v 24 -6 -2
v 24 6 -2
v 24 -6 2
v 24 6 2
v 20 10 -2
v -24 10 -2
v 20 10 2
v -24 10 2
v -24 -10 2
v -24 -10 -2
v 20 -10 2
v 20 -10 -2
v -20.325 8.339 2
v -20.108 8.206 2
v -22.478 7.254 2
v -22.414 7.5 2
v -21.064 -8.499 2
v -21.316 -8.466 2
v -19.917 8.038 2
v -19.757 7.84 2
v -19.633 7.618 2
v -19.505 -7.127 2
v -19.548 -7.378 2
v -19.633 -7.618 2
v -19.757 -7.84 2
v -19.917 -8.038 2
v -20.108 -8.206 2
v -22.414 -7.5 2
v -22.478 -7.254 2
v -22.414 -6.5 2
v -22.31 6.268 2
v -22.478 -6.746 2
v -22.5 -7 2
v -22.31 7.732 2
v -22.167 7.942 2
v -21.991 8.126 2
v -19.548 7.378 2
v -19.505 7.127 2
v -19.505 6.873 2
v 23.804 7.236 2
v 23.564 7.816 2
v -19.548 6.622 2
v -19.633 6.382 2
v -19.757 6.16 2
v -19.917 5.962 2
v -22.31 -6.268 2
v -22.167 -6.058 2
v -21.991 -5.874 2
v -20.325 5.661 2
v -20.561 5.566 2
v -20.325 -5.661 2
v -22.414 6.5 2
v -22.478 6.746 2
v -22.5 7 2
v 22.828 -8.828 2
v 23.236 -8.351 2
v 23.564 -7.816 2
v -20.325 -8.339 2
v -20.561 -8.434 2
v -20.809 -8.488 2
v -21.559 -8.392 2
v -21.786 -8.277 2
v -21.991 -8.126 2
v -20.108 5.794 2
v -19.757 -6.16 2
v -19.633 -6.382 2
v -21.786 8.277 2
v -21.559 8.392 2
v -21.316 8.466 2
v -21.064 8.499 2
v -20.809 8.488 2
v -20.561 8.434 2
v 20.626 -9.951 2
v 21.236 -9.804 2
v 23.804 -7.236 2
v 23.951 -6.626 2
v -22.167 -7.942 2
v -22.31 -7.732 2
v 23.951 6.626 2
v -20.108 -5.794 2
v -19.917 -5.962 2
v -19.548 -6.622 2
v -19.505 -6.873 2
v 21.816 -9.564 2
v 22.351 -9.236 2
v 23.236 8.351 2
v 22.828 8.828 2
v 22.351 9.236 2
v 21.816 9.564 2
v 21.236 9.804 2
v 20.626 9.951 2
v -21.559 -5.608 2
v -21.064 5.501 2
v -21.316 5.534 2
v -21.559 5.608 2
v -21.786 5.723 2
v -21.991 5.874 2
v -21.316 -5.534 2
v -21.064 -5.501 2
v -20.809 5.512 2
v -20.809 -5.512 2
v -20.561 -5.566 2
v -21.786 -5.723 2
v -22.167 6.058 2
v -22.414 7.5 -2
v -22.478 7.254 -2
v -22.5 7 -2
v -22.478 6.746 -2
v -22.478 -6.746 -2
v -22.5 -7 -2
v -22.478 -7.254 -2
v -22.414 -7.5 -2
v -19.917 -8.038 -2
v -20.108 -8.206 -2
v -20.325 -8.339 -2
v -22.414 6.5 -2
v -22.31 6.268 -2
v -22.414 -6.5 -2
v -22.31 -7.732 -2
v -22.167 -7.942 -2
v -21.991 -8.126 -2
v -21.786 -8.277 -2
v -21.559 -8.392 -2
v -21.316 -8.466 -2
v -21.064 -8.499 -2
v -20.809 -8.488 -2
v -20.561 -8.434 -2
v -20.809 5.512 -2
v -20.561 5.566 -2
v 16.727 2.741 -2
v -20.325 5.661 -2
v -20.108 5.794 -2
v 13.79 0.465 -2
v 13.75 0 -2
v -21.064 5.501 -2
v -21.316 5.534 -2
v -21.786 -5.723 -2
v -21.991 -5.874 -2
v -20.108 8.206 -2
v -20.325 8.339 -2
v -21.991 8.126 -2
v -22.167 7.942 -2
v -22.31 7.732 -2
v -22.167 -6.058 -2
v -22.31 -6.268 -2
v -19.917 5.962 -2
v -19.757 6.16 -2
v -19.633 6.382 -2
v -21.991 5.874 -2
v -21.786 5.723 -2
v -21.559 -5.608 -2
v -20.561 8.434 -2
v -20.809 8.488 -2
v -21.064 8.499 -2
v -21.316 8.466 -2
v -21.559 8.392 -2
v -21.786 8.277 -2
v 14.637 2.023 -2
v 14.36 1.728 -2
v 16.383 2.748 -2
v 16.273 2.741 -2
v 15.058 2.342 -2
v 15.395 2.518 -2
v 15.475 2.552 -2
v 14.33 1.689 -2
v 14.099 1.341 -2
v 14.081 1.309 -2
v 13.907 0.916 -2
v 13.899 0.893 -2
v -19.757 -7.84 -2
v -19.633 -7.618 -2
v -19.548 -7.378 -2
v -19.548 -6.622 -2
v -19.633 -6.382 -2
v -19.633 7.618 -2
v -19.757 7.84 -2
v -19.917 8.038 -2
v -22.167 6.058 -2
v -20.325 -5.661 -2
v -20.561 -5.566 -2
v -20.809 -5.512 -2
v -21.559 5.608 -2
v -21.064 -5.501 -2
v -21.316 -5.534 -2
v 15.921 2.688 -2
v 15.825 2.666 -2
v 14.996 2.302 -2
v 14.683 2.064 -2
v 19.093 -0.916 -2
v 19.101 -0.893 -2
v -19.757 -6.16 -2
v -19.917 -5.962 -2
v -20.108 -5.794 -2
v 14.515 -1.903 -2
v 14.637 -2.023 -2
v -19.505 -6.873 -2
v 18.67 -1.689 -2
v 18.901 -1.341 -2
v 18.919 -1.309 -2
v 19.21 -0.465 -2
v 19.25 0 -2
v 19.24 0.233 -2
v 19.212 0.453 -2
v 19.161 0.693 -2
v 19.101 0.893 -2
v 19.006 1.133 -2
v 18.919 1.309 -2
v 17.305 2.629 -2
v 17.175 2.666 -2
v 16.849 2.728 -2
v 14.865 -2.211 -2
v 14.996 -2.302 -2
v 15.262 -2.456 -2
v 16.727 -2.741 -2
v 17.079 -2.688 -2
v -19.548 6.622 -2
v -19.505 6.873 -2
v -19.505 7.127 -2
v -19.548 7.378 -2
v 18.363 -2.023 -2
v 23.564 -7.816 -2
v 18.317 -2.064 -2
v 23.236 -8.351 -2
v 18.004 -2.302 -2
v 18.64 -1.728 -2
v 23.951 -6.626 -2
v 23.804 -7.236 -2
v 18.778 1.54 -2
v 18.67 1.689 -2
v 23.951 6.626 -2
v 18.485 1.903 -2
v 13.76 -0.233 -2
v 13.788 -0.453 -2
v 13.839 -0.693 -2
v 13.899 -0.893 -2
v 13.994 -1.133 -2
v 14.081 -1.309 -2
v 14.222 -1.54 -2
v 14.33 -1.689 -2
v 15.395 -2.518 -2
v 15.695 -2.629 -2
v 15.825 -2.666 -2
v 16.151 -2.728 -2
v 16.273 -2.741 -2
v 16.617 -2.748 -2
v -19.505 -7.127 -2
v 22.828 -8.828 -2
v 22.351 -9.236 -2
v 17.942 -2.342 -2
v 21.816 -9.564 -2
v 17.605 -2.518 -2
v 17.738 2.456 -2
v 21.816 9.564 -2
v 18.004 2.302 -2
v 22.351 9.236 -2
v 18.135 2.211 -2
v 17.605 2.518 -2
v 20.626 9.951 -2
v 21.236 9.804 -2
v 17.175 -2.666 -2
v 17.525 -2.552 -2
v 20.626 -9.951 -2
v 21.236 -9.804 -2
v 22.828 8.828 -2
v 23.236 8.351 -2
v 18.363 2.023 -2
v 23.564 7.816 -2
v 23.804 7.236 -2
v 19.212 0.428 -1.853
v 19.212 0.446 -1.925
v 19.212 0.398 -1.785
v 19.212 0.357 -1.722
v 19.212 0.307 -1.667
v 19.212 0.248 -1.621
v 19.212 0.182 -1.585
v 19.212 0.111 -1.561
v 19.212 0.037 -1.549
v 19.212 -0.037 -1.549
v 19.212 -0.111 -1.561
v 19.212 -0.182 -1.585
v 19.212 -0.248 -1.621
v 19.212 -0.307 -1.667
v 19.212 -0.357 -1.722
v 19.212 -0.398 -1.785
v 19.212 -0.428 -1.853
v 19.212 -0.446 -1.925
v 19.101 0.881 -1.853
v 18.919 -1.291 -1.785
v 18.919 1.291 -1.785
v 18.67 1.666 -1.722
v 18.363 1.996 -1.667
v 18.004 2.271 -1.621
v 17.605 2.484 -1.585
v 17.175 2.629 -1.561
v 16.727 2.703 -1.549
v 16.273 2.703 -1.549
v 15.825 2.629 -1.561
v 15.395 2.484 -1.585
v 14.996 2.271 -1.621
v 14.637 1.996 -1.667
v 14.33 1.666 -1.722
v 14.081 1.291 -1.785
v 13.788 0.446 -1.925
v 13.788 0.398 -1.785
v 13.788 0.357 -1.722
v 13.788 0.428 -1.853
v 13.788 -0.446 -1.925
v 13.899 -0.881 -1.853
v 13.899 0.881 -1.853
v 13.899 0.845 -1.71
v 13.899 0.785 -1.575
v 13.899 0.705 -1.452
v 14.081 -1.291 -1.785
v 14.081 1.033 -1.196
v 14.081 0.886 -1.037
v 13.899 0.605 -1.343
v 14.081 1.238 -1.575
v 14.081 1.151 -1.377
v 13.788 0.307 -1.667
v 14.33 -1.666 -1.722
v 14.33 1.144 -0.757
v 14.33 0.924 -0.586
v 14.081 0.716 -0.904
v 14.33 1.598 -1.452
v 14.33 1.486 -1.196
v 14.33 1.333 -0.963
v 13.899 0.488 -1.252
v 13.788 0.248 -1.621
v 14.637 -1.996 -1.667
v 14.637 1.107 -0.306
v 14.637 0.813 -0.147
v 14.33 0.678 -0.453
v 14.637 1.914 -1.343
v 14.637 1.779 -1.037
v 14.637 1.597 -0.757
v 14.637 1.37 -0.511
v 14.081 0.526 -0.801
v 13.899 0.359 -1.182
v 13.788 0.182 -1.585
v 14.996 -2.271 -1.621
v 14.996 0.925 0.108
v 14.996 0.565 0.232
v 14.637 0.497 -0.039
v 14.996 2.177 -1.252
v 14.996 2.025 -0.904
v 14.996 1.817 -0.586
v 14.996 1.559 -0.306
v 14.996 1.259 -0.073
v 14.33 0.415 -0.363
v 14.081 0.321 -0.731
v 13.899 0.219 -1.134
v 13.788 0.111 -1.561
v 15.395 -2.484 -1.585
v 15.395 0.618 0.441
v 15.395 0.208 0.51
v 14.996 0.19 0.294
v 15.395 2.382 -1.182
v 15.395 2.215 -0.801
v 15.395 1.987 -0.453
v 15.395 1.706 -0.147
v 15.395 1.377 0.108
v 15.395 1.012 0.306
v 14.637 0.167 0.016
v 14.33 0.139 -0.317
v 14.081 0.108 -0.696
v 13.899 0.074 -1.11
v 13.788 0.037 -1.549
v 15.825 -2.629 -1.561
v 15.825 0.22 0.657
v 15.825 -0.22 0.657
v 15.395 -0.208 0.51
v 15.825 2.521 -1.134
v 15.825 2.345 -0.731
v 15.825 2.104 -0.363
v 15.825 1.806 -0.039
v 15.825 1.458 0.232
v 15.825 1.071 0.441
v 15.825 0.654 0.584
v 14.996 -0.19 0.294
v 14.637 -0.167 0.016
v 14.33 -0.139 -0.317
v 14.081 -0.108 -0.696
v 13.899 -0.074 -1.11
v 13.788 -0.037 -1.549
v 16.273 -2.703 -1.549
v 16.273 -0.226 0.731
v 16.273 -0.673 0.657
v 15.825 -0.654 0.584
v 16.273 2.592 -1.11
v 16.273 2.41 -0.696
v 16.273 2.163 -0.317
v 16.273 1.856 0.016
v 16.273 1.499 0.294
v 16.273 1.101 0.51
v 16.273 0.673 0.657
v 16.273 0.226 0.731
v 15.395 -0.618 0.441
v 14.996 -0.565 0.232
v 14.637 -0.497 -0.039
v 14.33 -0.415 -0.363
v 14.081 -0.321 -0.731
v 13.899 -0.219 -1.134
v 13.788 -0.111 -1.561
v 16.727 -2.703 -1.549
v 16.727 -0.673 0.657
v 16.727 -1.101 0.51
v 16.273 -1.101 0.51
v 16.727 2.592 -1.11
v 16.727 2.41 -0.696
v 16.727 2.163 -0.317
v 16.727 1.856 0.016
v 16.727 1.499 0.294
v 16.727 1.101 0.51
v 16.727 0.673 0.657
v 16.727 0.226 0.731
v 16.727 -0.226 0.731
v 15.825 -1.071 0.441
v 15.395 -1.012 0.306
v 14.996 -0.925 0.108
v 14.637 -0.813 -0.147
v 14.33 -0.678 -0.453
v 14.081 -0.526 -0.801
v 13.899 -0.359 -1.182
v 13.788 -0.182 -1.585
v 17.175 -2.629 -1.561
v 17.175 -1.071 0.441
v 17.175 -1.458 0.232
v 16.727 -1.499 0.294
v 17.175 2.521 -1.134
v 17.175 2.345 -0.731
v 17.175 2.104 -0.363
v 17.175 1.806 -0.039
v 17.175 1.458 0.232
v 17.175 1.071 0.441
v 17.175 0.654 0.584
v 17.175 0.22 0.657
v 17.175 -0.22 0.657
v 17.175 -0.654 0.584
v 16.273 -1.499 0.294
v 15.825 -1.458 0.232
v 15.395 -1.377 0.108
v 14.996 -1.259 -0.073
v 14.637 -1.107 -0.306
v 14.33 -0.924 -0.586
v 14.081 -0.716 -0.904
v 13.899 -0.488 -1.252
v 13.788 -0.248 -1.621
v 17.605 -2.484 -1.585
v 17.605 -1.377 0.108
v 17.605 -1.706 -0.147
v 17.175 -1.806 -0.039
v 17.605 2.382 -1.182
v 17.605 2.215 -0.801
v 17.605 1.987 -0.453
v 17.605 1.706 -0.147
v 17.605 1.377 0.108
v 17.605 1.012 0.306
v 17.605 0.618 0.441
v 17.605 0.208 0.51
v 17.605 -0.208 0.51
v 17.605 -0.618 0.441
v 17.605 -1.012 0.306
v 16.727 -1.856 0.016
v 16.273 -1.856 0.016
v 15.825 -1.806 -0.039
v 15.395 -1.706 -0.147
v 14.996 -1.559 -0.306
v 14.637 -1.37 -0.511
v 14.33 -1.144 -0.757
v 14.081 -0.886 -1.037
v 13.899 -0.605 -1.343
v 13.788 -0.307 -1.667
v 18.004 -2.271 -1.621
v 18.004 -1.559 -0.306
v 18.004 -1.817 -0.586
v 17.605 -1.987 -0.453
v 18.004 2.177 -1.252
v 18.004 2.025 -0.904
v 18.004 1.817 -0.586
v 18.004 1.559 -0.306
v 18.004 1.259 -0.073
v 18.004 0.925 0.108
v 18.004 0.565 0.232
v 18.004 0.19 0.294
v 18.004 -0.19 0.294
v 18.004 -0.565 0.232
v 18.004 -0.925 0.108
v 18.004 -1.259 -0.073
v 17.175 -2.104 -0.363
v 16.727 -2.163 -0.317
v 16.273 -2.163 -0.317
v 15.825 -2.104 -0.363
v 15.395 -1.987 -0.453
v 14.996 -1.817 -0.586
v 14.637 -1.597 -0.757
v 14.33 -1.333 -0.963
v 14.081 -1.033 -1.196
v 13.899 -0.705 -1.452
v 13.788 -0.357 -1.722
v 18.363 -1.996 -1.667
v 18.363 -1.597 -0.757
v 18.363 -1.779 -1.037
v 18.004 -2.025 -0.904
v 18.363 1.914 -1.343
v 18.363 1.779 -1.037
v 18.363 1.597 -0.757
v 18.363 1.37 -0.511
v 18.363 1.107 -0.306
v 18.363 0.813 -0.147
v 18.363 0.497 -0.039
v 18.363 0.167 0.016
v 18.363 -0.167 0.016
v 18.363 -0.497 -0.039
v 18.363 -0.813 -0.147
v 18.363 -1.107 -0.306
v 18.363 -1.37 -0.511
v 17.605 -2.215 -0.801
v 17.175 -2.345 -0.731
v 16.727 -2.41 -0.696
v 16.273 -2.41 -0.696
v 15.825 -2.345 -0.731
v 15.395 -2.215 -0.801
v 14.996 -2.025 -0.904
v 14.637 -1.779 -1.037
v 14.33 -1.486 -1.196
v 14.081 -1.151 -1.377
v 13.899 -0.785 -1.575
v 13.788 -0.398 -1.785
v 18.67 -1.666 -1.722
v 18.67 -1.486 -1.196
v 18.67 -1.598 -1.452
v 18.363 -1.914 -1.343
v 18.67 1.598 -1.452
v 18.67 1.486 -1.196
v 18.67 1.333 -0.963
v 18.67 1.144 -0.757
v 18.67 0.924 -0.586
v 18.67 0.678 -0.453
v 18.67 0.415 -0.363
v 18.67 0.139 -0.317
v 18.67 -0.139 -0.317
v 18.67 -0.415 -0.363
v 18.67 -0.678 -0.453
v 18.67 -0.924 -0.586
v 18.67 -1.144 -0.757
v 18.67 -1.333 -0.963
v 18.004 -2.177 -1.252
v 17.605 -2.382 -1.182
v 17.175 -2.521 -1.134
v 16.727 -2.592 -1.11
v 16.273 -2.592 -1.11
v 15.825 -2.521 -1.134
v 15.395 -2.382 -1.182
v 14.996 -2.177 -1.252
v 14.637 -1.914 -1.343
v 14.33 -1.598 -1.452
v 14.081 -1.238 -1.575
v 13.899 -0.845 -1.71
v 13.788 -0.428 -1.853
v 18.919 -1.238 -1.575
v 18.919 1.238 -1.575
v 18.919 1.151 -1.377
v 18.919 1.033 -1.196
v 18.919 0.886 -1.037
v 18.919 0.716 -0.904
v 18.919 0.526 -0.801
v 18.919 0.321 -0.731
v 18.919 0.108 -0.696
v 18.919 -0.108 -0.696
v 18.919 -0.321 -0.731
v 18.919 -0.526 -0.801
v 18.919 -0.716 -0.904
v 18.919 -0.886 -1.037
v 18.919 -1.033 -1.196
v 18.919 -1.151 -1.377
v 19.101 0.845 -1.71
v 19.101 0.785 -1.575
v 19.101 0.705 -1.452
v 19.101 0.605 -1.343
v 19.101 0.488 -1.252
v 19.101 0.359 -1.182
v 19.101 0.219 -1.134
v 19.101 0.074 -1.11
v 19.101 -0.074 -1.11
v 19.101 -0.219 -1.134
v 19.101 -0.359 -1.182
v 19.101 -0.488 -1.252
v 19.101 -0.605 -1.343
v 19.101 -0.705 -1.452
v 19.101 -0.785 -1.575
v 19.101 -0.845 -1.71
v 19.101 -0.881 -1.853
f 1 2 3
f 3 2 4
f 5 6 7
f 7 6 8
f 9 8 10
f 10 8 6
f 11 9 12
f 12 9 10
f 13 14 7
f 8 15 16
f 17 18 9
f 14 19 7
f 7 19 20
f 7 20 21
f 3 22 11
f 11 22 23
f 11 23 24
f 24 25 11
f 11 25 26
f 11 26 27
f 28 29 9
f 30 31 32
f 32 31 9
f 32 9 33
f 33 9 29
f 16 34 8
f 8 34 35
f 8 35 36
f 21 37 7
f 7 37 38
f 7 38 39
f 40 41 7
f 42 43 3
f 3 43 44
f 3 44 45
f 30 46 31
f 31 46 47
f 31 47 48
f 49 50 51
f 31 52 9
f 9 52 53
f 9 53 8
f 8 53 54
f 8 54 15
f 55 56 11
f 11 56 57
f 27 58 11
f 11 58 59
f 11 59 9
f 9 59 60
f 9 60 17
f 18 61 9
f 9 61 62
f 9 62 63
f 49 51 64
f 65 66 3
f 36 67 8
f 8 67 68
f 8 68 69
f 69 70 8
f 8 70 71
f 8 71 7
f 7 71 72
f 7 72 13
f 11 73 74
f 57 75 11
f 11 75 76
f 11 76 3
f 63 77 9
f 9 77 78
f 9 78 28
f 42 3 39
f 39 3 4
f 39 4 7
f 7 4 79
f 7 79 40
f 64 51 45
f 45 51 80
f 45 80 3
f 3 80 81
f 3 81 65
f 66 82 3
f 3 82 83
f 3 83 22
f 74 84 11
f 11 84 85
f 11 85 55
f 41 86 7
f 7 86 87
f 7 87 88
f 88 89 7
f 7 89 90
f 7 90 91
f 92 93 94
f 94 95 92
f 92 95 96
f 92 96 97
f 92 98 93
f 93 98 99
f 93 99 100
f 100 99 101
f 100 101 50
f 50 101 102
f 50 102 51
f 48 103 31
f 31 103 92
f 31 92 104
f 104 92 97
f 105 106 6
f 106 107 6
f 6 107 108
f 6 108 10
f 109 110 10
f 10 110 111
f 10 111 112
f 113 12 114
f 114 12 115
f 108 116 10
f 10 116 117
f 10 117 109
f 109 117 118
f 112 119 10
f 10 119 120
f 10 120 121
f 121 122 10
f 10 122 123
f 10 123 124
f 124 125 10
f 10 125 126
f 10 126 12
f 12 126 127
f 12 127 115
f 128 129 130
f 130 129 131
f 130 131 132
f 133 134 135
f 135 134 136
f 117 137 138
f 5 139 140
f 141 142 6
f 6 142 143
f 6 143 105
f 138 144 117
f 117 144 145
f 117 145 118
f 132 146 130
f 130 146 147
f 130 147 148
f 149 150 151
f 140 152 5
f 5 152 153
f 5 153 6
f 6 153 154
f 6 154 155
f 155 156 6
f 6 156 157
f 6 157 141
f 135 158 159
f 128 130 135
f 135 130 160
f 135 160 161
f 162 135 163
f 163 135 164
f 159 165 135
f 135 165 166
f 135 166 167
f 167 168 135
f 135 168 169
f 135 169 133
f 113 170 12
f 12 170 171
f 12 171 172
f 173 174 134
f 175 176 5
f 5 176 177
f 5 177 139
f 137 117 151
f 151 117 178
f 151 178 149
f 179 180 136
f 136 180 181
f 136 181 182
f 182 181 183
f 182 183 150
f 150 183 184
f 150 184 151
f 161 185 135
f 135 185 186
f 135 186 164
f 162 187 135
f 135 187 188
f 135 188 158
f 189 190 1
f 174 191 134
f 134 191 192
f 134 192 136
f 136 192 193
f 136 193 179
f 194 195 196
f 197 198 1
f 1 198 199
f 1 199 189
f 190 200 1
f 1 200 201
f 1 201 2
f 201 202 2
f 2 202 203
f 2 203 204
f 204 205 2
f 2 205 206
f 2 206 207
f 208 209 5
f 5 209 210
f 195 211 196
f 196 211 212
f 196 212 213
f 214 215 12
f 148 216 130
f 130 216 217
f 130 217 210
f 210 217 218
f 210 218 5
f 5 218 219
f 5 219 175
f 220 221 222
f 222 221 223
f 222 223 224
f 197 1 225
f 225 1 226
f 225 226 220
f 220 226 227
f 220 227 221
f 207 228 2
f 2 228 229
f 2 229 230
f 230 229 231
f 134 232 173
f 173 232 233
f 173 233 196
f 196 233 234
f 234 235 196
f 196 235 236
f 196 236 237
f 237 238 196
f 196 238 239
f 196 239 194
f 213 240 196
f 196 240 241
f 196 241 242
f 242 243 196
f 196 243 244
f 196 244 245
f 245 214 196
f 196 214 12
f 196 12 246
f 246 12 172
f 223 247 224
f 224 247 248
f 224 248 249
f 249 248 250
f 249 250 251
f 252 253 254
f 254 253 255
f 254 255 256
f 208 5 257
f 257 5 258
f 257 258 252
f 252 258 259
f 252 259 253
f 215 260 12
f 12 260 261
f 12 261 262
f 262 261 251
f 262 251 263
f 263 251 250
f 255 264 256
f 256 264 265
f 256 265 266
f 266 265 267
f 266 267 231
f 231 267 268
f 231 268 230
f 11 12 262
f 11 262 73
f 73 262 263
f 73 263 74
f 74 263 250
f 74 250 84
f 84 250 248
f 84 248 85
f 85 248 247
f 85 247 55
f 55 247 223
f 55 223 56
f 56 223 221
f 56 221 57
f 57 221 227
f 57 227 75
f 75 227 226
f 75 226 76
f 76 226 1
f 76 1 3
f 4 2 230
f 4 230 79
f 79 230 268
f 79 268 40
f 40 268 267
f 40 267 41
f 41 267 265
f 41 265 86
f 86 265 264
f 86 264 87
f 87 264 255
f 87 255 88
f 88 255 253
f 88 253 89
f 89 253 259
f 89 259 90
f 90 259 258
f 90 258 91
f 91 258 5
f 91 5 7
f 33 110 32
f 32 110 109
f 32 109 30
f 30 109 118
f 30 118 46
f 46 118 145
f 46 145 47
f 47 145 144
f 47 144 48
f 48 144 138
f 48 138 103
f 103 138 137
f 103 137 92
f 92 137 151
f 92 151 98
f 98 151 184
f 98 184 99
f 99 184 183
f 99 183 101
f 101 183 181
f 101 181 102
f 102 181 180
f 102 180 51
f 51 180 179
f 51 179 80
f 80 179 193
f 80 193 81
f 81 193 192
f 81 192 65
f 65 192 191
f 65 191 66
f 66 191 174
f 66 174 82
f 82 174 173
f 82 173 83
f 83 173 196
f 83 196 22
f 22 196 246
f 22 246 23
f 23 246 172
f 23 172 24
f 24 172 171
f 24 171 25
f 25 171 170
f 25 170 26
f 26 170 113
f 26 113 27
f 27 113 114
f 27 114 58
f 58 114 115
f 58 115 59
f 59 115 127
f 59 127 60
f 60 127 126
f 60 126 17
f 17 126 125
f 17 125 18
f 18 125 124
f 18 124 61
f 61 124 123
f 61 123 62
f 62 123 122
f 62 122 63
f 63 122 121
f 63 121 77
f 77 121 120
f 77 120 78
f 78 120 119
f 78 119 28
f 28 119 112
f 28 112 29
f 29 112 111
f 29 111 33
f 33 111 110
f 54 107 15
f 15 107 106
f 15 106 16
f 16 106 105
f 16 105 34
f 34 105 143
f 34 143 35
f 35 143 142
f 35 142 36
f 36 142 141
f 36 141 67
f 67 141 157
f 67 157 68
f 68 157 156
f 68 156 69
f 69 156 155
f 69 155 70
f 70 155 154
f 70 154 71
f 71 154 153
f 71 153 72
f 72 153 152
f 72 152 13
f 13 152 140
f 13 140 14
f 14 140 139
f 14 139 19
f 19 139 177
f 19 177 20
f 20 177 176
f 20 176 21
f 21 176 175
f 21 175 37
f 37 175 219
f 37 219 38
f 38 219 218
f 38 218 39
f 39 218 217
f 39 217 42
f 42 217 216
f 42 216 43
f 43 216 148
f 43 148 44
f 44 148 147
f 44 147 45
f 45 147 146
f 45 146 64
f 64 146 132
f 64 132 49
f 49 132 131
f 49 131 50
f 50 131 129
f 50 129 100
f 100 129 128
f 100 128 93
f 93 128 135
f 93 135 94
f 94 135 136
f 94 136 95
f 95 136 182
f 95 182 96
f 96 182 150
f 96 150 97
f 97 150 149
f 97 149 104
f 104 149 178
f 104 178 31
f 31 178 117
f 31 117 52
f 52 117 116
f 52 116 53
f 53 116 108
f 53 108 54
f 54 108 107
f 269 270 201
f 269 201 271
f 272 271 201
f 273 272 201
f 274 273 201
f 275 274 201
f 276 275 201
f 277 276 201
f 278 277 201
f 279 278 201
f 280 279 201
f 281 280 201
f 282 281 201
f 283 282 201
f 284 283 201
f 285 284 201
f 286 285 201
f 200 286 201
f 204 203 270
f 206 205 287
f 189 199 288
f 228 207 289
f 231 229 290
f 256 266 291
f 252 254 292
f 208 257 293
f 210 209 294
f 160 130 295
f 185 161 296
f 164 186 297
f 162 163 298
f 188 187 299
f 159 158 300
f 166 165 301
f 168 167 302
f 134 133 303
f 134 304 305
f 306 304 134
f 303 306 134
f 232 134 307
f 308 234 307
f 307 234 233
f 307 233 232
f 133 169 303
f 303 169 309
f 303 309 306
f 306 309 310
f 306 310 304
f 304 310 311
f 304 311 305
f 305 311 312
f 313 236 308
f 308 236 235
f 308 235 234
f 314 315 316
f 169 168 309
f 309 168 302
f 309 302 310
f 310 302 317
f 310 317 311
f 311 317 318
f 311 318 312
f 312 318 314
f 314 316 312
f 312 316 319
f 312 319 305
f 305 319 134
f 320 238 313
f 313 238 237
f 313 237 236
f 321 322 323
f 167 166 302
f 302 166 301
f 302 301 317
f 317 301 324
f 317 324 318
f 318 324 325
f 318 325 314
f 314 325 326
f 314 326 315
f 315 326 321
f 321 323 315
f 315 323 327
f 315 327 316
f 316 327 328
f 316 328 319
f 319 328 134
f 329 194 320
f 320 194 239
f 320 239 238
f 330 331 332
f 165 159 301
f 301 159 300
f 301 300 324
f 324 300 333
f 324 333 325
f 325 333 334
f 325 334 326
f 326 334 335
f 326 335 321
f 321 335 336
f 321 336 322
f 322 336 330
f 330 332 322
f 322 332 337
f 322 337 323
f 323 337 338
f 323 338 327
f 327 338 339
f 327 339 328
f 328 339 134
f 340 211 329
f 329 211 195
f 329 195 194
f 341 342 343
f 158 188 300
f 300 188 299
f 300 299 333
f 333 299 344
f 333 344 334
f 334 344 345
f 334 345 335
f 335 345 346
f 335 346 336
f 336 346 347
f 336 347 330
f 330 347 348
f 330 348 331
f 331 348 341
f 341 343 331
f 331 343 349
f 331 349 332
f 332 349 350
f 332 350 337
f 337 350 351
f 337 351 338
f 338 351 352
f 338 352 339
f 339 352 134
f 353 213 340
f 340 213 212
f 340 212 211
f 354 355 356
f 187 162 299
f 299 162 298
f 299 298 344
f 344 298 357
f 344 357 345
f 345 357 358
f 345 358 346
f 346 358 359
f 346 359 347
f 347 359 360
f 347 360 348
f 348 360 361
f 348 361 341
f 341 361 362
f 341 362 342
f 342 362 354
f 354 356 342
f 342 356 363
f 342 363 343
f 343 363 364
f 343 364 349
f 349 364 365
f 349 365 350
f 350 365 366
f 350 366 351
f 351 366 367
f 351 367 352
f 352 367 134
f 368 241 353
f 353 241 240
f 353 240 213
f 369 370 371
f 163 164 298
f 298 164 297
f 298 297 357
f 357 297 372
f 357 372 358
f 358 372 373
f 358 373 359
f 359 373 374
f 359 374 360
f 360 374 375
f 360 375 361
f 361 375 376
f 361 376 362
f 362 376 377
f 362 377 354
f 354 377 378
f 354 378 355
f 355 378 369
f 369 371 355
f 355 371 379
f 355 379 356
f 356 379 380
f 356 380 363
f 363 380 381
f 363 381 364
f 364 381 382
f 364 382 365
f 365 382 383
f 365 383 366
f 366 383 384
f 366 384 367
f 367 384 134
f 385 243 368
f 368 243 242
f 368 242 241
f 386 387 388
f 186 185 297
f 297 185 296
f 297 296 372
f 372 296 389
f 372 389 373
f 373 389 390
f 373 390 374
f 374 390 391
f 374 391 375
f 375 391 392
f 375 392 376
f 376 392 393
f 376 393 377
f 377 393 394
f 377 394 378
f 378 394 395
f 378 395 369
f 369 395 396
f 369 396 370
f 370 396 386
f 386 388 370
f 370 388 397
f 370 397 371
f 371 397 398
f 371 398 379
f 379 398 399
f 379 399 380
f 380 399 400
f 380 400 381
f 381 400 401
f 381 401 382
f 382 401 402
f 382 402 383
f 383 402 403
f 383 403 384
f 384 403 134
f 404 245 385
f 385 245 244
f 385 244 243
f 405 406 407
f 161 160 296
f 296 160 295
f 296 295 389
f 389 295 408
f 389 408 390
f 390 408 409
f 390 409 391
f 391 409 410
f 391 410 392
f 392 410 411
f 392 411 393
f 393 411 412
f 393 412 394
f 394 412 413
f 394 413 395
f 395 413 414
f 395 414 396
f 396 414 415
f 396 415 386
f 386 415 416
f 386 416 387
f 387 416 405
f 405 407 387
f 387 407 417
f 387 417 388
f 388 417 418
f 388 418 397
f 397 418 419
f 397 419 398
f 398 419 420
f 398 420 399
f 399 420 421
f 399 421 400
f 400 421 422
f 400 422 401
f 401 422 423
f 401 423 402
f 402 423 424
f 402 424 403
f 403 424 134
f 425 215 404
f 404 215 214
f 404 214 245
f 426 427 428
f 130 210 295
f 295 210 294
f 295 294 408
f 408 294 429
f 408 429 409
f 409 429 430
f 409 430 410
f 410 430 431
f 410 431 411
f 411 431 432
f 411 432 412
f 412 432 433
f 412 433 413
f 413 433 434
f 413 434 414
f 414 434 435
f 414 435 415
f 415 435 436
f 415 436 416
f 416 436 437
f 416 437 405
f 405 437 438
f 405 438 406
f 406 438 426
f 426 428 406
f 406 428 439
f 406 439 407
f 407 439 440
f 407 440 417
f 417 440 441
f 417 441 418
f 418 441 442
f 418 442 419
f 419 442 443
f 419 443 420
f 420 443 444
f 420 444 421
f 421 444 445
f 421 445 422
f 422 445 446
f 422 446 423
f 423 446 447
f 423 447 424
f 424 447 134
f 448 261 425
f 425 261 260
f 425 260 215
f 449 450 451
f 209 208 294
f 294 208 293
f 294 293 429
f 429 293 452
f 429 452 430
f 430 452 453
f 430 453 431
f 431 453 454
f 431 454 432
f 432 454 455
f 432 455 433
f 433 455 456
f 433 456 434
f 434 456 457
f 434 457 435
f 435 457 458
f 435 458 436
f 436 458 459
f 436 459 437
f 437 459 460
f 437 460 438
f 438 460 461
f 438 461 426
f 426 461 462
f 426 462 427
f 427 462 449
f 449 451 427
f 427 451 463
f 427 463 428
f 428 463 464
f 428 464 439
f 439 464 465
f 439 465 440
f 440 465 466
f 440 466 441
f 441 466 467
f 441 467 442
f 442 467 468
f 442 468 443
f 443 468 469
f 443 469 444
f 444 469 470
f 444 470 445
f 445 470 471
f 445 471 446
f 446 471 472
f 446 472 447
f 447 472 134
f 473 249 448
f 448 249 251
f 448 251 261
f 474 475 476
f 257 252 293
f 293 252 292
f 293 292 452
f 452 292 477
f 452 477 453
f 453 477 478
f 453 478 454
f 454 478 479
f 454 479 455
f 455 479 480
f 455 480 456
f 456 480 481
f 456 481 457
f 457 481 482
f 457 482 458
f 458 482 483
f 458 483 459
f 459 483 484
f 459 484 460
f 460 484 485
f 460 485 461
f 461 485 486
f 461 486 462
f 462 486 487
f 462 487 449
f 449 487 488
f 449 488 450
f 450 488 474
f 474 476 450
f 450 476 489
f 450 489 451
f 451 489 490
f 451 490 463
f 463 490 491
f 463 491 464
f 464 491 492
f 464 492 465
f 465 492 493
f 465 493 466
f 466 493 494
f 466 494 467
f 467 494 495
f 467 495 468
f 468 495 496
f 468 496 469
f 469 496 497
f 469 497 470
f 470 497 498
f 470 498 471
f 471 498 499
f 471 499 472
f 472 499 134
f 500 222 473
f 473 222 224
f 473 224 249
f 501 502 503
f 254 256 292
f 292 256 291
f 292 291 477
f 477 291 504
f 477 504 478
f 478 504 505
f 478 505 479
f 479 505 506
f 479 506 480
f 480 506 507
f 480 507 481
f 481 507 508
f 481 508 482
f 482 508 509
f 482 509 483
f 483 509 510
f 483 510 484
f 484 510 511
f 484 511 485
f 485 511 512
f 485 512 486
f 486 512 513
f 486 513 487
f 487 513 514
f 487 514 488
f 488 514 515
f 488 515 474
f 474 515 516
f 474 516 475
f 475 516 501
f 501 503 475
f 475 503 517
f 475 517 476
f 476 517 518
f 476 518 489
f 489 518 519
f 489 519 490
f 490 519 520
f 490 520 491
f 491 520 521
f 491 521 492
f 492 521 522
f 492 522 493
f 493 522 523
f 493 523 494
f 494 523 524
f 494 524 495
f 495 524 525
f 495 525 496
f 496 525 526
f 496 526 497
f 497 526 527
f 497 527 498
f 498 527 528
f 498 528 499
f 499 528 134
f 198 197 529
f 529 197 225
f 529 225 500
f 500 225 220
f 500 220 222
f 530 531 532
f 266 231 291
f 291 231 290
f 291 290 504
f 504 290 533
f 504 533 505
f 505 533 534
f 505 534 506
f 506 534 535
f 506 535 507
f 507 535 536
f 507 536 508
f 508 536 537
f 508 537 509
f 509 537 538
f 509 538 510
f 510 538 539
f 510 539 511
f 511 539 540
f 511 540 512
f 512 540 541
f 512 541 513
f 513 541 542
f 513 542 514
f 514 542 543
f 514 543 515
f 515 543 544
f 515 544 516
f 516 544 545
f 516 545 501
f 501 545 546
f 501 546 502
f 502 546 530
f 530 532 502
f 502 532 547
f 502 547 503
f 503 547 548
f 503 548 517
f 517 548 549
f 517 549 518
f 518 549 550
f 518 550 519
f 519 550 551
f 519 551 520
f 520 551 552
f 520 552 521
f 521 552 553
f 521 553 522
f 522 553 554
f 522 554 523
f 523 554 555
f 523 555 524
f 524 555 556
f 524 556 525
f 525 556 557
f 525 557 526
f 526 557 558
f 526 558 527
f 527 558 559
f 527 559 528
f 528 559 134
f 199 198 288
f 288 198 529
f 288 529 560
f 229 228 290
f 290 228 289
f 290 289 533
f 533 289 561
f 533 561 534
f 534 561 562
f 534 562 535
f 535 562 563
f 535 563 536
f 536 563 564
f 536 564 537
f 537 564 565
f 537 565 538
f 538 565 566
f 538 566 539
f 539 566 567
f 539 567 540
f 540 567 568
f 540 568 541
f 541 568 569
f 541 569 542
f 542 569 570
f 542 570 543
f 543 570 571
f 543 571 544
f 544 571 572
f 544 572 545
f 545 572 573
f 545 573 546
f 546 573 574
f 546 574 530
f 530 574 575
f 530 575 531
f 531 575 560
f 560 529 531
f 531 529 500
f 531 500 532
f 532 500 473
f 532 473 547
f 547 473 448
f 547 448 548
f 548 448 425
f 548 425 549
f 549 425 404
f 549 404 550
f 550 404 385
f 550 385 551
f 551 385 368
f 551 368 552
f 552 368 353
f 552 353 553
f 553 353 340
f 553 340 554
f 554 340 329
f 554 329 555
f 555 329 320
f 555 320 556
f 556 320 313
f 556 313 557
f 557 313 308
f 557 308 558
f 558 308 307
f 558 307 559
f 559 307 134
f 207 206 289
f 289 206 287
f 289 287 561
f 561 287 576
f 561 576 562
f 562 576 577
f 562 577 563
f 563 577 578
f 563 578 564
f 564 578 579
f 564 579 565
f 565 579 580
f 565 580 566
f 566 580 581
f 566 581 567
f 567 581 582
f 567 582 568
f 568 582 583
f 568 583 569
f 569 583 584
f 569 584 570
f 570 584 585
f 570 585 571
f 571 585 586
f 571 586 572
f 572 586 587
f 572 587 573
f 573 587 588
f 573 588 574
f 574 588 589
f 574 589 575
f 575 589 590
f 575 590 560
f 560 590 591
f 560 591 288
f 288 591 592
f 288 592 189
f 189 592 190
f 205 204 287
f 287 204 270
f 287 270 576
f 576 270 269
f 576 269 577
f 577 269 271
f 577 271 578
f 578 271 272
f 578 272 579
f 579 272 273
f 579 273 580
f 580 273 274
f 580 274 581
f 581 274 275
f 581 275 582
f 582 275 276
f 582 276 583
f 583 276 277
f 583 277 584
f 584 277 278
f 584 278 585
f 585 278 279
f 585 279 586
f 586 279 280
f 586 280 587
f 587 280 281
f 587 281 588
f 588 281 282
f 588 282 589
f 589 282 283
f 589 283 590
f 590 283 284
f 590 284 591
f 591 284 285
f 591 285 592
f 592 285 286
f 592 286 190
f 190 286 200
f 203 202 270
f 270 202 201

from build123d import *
from build123d.topology import SkipClean

# Parameters (mm, degrees)
SKETCH1_W           = 48
SKETCH1_H           = 20
BOSS_EXTRUDE1_DEPTH = 2
FILLET2_R           = 4
CUT_EXTRUDE1_REACH  = 28.306
SKETCH4_R           = 1.5
CUT_REVOLVE1_ANGLE  = 180


with BuildPart() as part:
    # Sketch1 → Boss-Extrude1 (new, symmetric)
    with BuildSketch(Plane.XY):
        Rectangle(SKETCH1_W, SKETCH1_H)
    extrude(amount=BOSS_EXTRUDE1_DEPTH, both=True)

    # Fillet2
    fillet2_edges = [part.edges().sort_by_distance(p)[0] for p in [
        (24, -10, 0),
        (24, 10, 0),
    ]]
    fillet(fillet2_edges, radius=FILLET2_R)

    # Sketch4 → Cut-Extrude1 (cut, up to next)
    with BuildSketch(Plane(origin=(0, 0, -2), x_dir=(-1, 0, 0), z_dir=(0, 0, -1)), mode=Mode.PRIVATE) as cut_extrude1_sk1:
        with Locations((21, 7)):
            Circle(SKETCH4_R)
    cut_extrude1_tool1 = extrude(cut_extrude1_sk1.sketch, amount=-CUT_EXTRUDE1_REACH, mode=Mode.PRIVATE) & part.part
    # Sketch4 → Cut-Extrude1 (cut, up to next)
    with BuildSketch(Plane(origin=(0, 0, -2), x_dir=(-1, 0, 0), z_dir=(0, 0, -1)), mode=Mode.PRIVATE) as cut_extrude1_sk2:
        with Locations((21, -7)):
            Circle(SKETCH4_R)
    cut_extrude1_tool2 = extrude(cut_extrude1_sk2.sketch, amount=-CUT_EXTRUDE1_REACH, mode=Mode.PRIVATE) & part.part
    add(cut_extrude1_tool1.solids().sort_by_distance((-21, 7, -2))[0], mode=Mode.SUBTRACT)
    add(cut_extrude1_tool2.solids().sort_by_distance((-21, -7, -2))[0], mode=Mode.SUBTRACT)

    # Sketch3 → Cut-Revolve1 (revolve, cut)
    with SkipClean():  # the faces are left unmerged after this step: merging them gives an invalid solid
        with BuildSketch(Plane.XY.offset(-2)):
            with BuildLine():
                ThreePointArc((19.25, 0), (16.5, 2.75), (13.75, 0))
                Line((13.75, 0), (19.25, 0))
            make_face()
            with BuildLine():
                Line((19.25, 0), (13.75, 0))
                ThreePointArc((13.75, 0), (16.5, -2.75), (19.25, 0))
            make_face()
        revolve(axis=Axis((13.75, 0, -2), (1, 0, 0)), revolution_arc=CUT_REVOLVE1_ANGLE, mode=Mode.SUBTRACT)


solid = part.part
